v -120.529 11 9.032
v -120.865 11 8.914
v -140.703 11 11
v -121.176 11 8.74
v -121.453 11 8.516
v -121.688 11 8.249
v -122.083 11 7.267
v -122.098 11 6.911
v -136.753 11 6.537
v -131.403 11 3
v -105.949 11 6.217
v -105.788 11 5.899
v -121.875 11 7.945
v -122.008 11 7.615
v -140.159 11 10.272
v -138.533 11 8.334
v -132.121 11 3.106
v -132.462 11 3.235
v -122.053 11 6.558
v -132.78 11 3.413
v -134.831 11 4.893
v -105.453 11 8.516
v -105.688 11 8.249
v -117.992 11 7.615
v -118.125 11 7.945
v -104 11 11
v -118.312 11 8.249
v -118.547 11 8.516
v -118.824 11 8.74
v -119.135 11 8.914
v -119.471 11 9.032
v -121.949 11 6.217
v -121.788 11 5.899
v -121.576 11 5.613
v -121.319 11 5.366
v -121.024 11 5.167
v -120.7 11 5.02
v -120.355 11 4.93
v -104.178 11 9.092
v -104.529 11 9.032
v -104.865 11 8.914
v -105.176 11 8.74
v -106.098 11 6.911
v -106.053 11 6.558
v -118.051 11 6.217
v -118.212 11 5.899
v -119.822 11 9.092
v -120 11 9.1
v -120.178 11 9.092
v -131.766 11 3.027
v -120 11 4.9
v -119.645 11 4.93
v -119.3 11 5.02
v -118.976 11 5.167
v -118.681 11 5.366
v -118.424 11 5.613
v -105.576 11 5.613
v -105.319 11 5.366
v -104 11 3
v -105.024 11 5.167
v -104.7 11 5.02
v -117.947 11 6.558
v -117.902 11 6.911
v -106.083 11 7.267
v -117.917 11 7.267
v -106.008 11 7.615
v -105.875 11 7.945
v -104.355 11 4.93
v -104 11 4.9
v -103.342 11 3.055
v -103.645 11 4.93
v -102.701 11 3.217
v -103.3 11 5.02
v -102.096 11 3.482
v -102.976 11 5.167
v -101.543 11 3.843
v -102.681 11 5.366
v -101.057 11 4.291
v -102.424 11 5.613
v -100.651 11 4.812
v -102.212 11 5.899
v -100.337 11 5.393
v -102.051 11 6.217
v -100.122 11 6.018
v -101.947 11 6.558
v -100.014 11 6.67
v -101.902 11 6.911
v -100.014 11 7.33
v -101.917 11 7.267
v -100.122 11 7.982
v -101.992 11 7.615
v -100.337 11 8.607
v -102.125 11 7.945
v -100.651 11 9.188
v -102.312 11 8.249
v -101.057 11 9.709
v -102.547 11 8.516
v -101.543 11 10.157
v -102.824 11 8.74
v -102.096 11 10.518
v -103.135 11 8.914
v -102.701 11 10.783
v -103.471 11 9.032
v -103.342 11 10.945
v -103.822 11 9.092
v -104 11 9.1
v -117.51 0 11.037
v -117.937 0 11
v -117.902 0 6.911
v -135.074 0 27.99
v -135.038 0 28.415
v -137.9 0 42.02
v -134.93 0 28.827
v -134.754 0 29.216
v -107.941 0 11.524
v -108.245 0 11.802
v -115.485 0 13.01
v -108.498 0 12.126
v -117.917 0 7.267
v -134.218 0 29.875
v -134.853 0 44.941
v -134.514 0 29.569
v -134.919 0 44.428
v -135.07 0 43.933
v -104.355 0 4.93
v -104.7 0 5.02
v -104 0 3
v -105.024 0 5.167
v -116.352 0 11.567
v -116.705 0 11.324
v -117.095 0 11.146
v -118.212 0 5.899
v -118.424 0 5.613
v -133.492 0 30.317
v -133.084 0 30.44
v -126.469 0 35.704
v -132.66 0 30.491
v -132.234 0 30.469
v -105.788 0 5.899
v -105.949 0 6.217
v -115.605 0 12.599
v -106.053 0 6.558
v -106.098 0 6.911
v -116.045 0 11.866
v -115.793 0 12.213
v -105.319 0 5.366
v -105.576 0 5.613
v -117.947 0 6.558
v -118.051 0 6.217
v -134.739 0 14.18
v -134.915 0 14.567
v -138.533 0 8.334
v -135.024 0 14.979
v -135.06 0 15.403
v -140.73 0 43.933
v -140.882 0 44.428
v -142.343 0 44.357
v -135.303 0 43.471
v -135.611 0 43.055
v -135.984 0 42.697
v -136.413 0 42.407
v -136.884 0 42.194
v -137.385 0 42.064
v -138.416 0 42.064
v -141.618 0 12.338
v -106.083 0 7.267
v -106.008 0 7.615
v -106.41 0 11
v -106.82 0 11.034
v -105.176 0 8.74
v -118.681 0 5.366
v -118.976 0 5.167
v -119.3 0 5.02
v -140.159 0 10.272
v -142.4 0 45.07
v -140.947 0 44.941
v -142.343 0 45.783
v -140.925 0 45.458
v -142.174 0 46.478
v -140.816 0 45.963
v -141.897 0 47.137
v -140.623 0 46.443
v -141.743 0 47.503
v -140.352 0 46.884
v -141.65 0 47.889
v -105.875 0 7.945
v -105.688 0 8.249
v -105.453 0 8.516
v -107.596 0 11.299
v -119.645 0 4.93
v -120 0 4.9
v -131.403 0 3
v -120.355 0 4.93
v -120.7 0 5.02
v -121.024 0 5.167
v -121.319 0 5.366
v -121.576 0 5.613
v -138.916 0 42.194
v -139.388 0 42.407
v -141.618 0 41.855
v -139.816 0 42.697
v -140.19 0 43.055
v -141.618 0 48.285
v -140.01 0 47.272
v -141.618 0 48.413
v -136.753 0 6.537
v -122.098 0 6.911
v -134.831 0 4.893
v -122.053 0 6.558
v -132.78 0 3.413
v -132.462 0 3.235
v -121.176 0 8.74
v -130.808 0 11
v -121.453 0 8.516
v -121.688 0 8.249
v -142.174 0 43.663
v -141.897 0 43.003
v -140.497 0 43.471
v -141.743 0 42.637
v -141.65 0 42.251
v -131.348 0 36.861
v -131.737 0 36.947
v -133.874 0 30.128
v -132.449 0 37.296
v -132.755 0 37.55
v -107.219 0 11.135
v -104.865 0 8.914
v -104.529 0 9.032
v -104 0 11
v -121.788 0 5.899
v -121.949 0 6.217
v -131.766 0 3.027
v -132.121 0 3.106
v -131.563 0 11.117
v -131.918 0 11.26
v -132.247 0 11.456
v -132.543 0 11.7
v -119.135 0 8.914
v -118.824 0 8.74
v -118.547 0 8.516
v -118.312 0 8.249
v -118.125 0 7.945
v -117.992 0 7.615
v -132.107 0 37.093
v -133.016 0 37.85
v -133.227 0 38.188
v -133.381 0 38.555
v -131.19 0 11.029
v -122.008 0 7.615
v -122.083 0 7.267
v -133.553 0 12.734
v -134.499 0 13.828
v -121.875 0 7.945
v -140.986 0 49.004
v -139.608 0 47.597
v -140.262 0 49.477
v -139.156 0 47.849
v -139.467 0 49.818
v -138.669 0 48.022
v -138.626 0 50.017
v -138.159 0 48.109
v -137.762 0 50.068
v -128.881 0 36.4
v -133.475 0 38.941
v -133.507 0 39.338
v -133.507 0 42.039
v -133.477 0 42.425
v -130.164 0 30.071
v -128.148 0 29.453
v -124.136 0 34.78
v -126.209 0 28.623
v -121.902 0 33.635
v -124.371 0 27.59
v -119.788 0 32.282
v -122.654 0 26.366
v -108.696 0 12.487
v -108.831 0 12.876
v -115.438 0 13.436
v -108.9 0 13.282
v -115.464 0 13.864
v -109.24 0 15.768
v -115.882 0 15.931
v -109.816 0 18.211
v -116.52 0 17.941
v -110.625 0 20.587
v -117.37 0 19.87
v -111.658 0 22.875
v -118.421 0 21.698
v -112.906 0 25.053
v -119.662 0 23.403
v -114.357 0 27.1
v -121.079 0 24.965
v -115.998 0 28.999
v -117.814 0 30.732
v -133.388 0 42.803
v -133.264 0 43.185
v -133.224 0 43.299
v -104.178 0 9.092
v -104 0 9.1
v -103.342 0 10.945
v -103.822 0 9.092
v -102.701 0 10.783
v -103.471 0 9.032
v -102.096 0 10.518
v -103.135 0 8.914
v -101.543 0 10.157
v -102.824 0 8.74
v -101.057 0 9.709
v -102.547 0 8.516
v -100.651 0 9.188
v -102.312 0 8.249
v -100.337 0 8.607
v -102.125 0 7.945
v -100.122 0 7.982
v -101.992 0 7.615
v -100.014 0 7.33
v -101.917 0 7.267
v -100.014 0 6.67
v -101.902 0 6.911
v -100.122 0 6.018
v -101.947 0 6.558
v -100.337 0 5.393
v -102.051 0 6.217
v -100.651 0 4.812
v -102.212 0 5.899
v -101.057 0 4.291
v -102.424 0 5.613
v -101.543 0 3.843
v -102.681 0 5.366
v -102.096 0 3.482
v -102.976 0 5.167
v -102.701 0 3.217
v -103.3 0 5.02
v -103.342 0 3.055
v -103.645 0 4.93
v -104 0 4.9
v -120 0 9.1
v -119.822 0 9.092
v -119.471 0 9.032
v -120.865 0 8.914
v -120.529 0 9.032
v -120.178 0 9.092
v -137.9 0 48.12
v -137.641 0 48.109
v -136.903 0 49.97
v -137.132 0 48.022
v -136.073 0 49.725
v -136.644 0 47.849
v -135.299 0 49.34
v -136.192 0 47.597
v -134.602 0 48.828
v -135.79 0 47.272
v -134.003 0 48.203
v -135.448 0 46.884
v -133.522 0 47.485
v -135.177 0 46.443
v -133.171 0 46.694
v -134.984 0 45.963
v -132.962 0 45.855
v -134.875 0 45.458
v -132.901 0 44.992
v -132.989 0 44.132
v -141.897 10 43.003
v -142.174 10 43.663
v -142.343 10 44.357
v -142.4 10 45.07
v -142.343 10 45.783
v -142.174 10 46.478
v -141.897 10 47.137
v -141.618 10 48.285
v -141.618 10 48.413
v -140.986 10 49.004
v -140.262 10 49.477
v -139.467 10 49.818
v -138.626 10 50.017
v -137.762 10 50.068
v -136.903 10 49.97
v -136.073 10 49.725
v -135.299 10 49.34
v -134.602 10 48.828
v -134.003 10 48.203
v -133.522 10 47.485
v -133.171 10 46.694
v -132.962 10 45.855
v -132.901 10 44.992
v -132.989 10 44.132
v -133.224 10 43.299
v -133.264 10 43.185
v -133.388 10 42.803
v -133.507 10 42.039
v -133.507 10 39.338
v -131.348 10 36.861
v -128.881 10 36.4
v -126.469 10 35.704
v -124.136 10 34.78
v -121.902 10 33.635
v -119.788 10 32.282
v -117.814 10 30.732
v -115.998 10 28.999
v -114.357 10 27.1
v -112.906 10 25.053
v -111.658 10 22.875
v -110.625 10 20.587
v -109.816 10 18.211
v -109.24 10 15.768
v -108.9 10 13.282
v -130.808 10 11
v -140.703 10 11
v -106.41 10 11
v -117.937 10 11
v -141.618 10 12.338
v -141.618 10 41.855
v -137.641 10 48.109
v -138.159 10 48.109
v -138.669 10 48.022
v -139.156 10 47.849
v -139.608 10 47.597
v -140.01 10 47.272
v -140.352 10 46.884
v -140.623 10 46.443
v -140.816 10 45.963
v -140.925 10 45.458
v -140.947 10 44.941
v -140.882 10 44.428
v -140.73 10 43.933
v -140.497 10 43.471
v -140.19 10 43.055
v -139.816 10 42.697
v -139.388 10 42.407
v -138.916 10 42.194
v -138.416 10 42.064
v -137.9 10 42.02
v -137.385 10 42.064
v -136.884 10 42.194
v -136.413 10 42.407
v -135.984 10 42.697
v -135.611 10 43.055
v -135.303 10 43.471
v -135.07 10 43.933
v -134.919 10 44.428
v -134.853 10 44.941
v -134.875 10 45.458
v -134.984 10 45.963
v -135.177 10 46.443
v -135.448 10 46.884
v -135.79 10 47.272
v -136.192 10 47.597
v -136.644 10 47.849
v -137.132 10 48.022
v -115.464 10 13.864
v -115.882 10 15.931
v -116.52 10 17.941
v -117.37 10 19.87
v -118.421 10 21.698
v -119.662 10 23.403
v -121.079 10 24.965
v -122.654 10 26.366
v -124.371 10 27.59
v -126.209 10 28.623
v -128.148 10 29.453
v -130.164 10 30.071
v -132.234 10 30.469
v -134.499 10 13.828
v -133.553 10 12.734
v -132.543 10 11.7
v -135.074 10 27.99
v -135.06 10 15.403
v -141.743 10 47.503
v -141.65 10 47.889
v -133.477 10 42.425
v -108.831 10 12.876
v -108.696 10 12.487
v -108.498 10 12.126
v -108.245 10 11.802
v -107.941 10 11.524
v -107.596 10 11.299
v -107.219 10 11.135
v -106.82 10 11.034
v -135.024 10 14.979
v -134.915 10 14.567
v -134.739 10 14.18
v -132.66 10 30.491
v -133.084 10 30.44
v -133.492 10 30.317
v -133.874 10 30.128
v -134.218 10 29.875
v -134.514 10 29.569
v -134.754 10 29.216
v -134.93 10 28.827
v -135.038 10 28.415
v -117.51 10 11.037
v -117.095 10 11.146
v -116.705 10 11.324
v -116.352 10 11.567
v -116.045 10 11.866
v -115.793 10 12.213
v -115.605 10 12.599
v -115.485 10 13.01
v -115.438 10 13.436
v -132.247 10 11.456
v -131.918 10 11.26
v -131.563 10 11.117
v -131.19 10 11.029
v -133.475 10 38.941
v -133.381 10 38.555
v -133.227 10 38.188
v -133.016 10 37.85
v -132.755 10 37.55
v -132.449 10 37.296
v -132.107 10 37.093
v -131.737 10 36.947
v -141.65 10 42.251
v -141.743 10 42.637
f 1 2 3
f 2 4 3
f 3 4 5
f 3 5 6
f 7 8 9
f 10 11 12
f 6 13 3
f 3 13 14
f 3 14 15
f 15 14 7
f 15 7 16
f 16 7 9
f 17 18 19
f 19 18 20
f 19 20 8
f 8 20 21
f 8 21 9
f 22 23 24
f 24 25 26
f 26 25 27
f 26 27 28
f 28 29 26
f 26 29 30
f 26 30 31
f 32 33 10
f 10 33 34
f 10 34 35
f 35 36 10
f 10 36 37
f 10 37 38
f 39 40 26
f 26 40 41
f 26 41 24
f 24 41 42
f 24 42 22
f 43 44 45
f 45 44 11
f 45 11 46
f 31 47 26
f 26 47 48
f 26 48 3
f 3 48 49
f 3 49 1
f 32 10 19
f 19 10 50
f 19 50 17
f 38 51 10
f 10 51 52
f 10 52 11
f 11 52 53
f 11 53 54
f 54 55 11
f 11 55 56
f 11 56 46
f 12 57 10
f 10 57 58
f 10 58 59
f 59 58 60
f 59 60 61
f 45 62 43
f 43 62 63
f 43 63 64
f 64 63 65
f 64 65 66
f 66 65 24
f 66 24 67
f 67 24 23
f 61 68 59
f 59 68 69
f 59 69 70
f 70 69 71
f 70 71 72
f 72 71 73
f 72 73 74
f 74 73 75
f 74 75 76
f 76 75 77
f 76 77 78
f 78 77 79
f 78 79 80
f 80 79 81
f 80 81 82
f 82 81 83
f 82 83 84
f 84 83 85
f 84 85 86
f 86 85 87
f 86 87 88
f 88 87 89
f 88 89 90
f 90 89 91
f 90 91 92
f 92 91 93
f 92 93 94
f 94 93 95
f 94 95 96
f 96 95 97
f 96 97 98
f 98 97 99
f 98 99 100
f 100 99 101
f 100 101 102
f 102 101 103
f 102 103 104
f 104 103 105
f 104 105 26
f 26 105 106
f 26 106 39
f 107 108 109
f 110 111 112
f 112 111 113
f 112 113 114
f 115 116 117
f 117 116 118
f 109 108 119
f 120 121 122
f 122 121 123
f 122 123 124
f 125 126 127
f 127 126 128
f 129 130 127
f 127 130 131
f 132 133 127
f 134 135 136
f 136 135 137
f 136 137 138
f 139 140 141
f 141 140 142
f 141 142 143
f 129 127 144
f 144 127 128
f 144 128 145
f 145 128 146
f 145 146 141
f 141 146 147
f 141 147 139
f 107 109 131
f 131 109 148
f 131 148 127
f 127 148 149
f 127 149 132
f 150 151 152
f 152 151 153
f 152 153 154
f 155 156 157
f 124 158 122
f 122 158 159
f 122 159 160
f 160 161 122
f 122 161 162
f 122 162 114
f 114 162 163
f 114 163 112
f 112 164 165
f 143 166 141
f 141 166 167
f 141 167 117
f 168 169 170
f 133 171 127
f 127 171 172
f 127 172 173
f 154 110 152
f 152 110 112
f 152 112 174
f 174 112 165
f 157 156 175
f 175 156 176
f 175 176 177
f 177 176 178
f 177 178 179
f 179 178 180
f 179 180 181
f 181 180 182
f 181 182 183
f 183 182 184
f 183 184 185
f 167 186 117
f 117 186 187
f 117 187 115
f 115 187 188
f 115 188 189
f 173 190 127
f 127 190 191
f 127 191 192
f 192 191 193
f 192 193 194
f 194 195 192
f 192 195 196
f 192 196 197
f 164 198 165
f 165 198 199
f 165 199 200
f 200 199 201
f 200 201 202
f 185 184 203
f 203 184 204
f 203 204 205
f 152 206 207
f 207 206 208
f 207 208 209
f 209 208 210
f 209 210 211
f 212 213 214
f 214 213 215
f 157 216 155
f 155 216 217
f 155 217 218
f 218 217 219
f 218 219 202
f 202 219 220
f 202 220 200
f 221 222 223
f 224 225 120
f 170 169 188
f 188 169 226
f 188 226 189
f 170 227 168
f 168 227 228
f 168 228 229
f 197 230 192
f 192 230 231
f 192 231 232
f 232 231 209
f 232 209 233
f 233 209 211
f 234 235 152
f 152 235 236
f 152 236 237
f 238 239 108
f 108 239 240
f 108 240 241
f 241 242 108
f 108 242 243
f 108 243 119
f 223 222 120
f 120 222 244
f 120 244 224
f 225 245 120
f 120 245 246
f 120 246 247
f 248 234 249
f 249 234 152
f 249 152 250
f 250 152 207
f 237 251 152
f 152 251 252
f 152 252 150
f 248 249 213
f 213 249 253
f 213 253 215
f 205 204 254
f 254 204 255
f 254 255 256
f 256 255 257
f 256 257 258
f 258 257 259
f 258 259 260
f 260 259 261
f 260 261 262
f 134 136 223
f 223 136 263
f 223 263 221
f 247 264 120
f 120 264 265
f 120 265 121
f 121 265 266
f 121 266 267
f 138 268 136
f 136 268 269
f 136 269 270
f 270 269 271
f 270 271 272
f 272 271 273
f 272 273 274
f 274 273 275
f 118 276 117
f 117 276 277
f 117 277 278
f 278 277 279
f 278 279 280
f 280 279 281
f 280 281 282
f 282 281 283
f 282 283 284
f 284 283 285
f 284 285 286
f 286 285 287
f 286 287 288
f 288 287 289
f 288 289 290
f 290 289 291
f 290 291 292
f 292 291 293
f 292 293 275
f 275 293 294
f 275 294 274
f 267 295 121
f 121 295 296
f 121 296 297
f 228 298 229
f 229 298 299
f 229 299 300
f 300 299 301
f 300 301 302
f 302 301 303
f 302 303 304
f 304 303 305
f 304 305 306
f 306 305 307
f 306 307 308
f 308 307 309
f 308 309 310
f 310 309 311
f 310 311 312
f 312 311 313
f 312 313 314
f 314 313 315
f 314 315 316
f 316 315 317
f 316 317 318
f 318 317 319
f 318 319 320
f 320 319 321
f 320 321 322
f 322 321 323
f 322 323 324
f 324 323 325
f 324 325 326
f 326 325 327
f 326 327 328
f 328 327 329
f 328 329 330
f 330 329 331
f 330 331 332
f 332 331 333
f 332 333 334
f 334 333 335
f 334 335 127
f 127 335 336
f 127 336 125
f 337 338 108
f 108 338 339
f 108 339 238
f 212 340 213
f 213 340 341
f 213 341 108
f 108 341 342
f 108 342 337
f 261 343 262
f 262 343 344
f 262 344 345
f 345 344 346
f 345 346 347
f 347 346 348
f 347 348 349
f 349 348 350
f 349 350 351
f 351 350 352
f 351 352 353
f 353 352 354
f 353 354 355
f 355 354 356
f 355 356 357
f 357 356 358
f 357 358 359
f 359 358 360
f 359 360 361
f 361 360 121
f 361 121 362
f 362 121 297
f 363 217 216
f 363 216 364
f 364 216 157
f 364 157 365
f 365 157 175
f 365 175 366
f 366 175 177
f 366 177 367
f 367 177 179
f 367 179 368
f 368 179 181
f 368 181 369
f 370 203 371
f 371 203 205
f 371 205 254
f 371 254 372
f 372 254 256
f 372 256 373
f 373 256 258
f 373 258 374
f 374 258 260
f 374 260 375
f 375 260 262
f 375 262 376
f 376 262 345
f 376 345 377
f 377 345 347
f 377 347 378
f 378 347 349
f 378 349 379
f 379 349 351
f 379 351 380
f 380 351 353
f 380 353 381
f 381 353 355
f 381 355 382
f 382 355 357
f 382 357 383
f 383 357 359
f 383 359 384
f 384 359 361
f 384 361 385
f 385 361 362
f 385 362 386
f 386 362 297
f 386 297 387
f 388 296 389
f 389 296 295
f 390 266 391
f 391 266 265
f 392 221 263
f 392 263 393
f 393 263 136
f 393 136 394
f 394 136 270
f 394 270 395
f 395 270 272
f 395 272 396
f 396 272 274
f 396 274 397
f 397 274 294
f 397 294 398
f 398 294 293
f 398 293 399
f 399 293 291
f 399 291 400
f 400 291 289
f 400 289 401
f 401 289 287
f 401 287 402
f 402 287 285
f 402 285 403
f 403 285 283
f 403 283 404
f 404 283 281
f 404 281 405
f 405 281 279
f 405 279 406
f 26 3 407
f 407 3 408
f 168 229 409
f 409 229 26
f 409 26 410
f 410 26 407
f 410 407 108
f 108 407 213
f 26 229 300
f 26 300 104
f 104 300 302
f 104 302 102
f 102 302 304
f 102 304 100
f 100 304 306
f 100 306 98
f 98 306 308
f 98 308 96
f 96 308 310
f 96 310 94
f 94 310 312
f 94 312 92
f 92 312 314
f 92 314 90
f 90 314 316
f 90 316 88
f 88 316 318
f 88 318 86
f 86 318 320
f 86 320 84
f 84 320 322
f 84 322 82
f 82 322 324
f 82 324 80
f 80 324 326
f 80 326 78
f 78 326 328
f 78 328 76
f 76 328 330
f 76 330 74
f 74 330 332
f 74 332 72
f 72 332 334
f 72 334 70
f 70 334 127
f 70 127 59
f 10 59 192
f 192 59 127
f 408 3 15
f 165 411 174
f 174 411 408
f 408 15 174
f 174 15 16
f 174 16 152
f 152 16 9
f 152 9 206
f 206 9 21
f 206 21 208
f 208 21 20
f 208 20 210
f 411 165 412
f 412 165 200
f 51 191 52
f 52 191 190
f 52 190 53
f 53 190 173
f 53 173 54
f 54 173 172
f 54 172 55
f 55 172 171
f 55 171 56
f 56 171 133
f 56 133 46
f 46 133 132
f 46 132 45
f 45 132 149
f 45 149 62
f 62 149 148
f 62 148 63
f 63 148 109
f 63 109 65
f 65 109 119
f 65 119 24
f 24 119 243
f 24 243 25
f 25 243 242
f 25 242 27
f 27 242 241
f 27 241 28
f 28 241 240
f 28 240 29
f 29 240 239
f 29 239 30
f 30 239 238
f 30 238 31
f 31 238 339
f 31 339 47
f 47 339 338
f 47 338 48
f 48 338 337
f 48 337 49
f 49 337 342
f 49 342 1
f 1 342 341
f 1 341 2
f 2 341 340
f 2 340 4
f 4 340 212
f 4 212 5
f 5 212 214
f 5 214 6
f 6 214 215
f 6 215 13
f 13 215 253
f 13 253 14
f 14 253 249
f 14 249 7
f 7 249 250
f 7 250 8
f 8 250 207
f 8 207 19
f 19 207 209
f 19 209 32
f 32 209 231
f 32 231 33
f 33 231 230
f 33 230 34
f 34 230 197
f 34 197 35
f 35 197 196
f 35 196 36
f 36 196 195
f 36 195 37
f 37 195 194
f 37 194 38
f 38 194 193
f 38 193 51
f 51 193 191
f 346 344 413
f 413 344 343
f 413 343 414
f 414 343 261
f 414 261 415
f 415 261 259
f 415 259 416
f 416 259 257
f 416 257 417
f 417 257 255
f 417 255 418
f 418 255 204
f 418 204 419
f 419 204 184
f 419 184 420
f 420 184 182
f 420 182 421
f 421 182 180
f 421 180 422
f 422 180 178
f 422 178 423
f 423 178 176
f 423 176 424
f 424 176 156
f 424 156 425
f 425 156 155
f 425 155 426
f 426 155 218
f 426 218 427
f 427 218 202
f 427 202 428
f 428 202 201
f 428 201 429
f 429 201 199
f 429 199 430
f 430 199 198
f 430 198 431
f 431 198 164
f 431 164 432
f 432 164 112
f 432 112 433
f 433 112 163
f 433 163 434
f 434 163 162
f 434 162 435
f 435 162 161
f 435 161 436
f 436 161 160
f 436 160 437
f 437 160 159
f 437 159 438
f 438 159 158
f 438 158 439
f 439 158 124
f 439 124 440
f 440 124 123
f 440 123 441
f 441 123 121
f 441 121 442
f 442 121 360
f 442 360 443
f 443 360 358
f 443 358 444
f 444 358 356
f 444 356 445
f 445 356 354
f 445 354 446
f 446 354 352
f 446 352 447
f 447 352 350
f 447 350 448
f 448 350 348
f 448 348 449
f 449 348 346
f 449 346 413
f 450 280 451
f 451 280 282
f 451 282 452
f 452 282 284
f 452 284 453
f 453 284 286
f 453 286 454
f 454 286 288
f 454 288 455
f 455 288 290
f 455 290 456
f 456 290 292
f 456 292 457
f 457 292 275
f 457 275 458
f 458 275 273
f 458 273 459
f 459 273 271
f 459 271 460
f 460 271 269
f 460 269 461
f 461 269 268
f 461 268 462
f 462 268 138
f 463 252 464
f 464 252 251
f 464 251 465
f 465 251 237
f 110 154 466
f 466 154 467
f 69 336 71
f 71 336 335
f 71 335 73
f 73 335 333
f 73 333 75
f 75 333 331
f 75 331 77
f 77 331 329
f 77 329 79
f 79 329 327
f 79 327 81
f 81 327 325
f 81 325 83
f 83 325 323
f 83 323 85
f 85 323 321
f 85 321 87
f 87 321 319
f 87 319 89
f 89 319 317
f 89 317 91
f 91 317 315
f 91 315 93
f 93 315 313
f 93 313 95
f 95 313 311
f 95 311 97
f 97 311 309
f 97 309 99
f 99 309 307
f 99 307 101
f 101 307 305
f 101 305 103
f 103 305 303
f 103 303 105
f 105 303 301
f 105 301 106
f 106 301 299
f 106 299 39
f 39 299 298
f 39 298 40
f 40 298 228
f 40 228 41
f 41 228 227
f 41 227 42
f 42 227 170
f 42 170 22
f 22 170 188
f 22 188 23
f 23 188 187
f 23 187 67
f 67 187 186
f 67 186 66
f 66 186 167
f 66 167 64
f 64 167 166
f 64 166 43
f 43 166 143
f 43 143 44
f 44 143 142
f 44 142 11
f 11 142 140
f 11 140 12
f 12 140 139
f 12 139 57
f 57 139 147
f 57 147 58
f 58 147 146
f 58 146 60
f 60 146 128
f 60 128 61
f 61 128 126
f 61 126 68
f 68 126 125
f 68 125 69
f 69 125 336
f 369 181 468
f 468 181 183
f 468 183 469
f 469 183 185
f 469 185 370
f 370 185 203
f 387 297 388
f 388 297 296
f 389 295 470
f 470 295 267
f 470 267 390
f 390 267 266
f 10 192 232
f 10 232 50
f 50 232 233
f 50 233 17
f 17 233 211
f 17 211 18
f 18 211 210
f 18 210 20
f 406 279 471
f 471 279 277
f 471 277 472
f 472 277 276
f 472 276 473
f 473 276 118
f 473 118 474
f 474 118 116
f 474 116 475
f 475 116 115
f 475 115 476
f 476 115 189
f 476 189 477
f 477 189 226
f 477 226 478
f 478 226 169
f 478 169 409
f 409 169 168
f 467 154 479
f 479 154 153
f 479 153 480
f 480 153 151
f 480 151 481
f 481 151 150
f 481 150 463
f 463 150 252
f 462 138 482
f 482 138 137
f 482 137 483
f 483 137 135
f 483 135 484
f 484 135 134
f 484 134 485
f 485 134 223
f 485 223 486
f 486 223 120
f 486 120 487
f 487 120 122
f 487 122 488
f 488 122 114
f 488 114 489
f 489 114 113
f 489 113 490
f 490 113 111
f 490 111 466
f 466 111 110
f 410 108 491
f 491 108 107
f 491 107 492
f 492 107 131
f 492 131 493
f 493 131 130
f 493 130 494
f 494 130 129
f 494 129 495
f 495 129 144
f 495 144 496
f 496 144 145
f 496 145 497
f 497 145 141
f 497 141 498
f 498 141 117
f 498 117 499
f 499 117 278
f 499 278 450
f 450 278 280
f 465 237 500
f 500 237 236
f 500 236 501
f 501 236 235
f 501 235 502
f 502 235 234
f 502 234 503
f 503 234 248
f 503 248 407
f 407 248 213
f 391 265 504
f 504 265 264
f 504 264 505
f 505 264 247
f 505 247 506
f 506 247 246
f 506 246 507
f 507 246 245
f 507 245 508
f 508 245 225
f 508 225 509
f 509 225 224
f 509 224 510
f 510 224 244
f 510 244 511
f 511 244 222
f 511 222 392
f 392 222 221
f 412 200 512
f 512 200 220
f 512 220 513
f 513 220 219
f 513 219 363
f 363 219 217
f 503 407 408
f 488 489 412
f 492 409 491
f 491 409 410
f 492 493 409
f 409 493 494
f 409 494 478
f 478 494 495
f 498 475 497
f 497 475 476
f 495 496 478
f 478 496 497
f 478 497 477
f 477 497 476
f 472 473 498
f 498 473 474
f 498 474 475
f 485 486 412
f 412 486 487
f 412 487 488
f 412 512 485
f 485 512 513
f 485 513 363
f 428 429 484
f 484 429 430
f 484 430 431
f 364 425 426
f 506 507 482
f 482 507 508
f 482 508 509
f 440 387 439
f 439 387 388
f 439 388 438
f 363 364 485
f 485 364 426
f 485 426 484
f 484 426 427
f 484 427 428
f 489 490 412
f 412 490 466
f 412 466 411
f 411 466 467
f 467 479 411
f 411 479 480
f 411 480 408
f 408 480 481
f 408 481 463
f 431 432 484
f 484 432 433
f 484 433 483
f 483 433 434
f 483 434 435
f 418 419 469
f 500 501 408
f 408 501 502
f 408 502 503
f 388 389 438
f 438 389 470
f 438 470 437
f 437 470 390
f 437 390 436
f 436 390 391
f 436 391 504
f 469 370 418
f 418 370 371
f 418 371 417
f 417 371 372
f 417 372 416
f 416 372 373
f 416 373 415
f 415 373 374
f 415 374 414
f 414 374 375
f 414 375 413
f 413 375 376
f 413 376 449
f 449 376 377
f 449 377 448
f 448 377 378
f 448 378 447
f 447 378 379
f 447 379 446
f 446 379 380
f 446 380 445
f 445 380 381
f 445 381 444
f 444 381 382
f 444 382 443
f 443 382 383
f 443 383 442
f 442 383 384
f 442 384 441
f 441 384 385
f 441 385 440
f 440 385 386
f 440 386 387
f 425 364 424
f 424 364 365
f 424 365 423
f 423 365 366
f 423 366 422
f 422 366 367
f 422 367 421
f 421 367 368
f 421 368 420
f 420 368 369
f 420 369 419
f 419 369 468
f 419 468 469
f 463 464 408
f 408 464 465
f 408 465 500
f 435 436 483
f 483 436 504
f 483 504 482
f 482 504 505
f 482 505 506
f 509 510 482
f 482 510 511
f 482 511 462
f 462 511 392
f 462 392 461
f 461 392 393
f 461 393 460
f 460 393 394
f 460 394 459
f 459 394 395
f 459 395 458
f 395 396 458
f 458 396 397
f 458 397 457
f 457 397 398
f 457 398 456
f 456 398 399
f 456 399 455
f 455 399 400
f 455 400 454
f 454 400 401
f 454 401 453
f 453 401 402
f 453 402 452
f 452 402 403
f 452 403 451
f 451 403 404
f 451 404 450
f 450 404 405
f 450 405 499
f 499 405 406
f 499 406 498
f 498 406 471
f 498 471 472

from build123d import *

# Parameters (mm, degrees)
SKETCH1_R           = 2.1
SKETCH1_R_2         = 3.05
BOSS_EXTRUDE1_DEPTH = 11
FILLET1_R           = 2.5
SKETCH2_W           = 62.859905726
SKETCH2_H           = 67.127049317
CUT_EXTRUDE1_DEPTH  = 1


with BuildPart() as part:
    # Sketch1 → Boss-Extrude1 (new body)
    with BuildSketch(Plane(origin=(0, 0, 0), x_dir=(1, 0, 0), z_dir=(0, 1, 0))):
        with BuildLine():
            Line((-141.618033146, -48.413320241), (-141.618033146, -47.605254623))
            ThreePointArc((-141.618033146, -47.605254623), (-142.400057305, -45.070169685), (-141.618033146, -42.535084747))
            Line((-141.618033146, -42.535084747), (-141.618033146, -12.337550143))
            ThreePointArc((-141.618033146, -12.337550143), (-137.391034255, -7.146662711), (-132.135747469, -3.000002276))
            Line((-132.135747469, -3.000002276), (-103.999998533, -3.000002276))
            ThreePointArc((-103.999998533, -3.000002276), (-99.999998533, -7.000002276), (-103.999998533, -11.000002276))
            Line((-103.999998533, -11.000002276), (-108.800450096, -11.000002276))
            ThreePointArc((-108.800450096, -11.000002276), (-115.958524417, -28.957739522), (-133.507162881, -37.067218112))
            Line((-133.507162881, -37.067218112), (-133.507162881, -42.428250309))
            ThreePointArc((-133.507162881, -42.428250309), (-133.376053416, -42.838619725), (-133.243682576, -43.248584005))
            ThreePointArc((-133.243682576, -43.248584005), (-135.275410049, -49.325898387), (-141.618033146, -48.413320241))
        make_face()
        with Locations(Location((-103.999998533, -7.000002276, 0), (0, 0, 270))):
            Circle(SKETCH1_R, mode=Mode.SUBTRACT)
        with Locations(Location((-120, -7, 0), (0, 0, 270))):
            Circle(SKETCH1_R, mode=Mode.SUBTRACT)
        with Locations(Location((-137.900057305, -45.070169685, 0), (0, 0, 270))):
            Circle(SKETCH1_R_2, mode=Mode.SUBTRACT)
        with BuildLine():
            Line((-115.253720534, -10.999999988), (-131.784308175, -10.999999988))
            ThreePointArc((-131.784308175, -10.999999988), (-133.51136611, -12.688858333), (-135.059388528, -14.543204098))
            Line((-135.059388528, -14.543204098), (-135.076749083, -30.65065719))
            ThreePointArc((-135.076749083, -30.65065719), (-121.070294848, -24.956188484), (-115.253720534, -10.999999988))
        make_face(mode=Mode.SUBTRACT)
    extrude(amount=BOSS_EXTRUDE1_DEPTH)

    # Fillet1
    fillet1_edges = [part.edges().sort_by_distance(p)[0] for p in [
        (-141.618033146, 5.5, 42.535084747),
        (-132.135747469, 5.5, 3.000002276),
        (-108.800450096, 5.5, 11.000002276),
        (-133.507162881, 5.5, 37.067218112),
        (-133.507162881, 5.5, 42.428250309),
        (-133.243682576, 5.5, 43.248584005),
        (-141.618033146, 5.5, 47.605254623),
        (-135.076749083, 5.5, 30.65065719),
        (-115.253720534, 5.5, 10.999999988),
        (-131.784308175, 5.5, 10.999999988),
        (-135.059388528, 5.5, 14.543204098),
    ]]
    fillet(fillet1_edges, radius=FILLET1_R)

    # Sketch2 → Cut-Extrude1 (cut)
    with BuildSketch(Plane(origin=(0, 11, 0), x_dir=(1, 0, 0), z_dir=(0, 1, 0))):
        with Locations((-133.229918527, -44.563526935)):
            Rectangle(SKETCH2_W, SKETCH2_H)
    extrude(amount=-CUT_EXTRUDE1_DEPTH, mode=Mode.SUBTRACT)


solid = part.part
